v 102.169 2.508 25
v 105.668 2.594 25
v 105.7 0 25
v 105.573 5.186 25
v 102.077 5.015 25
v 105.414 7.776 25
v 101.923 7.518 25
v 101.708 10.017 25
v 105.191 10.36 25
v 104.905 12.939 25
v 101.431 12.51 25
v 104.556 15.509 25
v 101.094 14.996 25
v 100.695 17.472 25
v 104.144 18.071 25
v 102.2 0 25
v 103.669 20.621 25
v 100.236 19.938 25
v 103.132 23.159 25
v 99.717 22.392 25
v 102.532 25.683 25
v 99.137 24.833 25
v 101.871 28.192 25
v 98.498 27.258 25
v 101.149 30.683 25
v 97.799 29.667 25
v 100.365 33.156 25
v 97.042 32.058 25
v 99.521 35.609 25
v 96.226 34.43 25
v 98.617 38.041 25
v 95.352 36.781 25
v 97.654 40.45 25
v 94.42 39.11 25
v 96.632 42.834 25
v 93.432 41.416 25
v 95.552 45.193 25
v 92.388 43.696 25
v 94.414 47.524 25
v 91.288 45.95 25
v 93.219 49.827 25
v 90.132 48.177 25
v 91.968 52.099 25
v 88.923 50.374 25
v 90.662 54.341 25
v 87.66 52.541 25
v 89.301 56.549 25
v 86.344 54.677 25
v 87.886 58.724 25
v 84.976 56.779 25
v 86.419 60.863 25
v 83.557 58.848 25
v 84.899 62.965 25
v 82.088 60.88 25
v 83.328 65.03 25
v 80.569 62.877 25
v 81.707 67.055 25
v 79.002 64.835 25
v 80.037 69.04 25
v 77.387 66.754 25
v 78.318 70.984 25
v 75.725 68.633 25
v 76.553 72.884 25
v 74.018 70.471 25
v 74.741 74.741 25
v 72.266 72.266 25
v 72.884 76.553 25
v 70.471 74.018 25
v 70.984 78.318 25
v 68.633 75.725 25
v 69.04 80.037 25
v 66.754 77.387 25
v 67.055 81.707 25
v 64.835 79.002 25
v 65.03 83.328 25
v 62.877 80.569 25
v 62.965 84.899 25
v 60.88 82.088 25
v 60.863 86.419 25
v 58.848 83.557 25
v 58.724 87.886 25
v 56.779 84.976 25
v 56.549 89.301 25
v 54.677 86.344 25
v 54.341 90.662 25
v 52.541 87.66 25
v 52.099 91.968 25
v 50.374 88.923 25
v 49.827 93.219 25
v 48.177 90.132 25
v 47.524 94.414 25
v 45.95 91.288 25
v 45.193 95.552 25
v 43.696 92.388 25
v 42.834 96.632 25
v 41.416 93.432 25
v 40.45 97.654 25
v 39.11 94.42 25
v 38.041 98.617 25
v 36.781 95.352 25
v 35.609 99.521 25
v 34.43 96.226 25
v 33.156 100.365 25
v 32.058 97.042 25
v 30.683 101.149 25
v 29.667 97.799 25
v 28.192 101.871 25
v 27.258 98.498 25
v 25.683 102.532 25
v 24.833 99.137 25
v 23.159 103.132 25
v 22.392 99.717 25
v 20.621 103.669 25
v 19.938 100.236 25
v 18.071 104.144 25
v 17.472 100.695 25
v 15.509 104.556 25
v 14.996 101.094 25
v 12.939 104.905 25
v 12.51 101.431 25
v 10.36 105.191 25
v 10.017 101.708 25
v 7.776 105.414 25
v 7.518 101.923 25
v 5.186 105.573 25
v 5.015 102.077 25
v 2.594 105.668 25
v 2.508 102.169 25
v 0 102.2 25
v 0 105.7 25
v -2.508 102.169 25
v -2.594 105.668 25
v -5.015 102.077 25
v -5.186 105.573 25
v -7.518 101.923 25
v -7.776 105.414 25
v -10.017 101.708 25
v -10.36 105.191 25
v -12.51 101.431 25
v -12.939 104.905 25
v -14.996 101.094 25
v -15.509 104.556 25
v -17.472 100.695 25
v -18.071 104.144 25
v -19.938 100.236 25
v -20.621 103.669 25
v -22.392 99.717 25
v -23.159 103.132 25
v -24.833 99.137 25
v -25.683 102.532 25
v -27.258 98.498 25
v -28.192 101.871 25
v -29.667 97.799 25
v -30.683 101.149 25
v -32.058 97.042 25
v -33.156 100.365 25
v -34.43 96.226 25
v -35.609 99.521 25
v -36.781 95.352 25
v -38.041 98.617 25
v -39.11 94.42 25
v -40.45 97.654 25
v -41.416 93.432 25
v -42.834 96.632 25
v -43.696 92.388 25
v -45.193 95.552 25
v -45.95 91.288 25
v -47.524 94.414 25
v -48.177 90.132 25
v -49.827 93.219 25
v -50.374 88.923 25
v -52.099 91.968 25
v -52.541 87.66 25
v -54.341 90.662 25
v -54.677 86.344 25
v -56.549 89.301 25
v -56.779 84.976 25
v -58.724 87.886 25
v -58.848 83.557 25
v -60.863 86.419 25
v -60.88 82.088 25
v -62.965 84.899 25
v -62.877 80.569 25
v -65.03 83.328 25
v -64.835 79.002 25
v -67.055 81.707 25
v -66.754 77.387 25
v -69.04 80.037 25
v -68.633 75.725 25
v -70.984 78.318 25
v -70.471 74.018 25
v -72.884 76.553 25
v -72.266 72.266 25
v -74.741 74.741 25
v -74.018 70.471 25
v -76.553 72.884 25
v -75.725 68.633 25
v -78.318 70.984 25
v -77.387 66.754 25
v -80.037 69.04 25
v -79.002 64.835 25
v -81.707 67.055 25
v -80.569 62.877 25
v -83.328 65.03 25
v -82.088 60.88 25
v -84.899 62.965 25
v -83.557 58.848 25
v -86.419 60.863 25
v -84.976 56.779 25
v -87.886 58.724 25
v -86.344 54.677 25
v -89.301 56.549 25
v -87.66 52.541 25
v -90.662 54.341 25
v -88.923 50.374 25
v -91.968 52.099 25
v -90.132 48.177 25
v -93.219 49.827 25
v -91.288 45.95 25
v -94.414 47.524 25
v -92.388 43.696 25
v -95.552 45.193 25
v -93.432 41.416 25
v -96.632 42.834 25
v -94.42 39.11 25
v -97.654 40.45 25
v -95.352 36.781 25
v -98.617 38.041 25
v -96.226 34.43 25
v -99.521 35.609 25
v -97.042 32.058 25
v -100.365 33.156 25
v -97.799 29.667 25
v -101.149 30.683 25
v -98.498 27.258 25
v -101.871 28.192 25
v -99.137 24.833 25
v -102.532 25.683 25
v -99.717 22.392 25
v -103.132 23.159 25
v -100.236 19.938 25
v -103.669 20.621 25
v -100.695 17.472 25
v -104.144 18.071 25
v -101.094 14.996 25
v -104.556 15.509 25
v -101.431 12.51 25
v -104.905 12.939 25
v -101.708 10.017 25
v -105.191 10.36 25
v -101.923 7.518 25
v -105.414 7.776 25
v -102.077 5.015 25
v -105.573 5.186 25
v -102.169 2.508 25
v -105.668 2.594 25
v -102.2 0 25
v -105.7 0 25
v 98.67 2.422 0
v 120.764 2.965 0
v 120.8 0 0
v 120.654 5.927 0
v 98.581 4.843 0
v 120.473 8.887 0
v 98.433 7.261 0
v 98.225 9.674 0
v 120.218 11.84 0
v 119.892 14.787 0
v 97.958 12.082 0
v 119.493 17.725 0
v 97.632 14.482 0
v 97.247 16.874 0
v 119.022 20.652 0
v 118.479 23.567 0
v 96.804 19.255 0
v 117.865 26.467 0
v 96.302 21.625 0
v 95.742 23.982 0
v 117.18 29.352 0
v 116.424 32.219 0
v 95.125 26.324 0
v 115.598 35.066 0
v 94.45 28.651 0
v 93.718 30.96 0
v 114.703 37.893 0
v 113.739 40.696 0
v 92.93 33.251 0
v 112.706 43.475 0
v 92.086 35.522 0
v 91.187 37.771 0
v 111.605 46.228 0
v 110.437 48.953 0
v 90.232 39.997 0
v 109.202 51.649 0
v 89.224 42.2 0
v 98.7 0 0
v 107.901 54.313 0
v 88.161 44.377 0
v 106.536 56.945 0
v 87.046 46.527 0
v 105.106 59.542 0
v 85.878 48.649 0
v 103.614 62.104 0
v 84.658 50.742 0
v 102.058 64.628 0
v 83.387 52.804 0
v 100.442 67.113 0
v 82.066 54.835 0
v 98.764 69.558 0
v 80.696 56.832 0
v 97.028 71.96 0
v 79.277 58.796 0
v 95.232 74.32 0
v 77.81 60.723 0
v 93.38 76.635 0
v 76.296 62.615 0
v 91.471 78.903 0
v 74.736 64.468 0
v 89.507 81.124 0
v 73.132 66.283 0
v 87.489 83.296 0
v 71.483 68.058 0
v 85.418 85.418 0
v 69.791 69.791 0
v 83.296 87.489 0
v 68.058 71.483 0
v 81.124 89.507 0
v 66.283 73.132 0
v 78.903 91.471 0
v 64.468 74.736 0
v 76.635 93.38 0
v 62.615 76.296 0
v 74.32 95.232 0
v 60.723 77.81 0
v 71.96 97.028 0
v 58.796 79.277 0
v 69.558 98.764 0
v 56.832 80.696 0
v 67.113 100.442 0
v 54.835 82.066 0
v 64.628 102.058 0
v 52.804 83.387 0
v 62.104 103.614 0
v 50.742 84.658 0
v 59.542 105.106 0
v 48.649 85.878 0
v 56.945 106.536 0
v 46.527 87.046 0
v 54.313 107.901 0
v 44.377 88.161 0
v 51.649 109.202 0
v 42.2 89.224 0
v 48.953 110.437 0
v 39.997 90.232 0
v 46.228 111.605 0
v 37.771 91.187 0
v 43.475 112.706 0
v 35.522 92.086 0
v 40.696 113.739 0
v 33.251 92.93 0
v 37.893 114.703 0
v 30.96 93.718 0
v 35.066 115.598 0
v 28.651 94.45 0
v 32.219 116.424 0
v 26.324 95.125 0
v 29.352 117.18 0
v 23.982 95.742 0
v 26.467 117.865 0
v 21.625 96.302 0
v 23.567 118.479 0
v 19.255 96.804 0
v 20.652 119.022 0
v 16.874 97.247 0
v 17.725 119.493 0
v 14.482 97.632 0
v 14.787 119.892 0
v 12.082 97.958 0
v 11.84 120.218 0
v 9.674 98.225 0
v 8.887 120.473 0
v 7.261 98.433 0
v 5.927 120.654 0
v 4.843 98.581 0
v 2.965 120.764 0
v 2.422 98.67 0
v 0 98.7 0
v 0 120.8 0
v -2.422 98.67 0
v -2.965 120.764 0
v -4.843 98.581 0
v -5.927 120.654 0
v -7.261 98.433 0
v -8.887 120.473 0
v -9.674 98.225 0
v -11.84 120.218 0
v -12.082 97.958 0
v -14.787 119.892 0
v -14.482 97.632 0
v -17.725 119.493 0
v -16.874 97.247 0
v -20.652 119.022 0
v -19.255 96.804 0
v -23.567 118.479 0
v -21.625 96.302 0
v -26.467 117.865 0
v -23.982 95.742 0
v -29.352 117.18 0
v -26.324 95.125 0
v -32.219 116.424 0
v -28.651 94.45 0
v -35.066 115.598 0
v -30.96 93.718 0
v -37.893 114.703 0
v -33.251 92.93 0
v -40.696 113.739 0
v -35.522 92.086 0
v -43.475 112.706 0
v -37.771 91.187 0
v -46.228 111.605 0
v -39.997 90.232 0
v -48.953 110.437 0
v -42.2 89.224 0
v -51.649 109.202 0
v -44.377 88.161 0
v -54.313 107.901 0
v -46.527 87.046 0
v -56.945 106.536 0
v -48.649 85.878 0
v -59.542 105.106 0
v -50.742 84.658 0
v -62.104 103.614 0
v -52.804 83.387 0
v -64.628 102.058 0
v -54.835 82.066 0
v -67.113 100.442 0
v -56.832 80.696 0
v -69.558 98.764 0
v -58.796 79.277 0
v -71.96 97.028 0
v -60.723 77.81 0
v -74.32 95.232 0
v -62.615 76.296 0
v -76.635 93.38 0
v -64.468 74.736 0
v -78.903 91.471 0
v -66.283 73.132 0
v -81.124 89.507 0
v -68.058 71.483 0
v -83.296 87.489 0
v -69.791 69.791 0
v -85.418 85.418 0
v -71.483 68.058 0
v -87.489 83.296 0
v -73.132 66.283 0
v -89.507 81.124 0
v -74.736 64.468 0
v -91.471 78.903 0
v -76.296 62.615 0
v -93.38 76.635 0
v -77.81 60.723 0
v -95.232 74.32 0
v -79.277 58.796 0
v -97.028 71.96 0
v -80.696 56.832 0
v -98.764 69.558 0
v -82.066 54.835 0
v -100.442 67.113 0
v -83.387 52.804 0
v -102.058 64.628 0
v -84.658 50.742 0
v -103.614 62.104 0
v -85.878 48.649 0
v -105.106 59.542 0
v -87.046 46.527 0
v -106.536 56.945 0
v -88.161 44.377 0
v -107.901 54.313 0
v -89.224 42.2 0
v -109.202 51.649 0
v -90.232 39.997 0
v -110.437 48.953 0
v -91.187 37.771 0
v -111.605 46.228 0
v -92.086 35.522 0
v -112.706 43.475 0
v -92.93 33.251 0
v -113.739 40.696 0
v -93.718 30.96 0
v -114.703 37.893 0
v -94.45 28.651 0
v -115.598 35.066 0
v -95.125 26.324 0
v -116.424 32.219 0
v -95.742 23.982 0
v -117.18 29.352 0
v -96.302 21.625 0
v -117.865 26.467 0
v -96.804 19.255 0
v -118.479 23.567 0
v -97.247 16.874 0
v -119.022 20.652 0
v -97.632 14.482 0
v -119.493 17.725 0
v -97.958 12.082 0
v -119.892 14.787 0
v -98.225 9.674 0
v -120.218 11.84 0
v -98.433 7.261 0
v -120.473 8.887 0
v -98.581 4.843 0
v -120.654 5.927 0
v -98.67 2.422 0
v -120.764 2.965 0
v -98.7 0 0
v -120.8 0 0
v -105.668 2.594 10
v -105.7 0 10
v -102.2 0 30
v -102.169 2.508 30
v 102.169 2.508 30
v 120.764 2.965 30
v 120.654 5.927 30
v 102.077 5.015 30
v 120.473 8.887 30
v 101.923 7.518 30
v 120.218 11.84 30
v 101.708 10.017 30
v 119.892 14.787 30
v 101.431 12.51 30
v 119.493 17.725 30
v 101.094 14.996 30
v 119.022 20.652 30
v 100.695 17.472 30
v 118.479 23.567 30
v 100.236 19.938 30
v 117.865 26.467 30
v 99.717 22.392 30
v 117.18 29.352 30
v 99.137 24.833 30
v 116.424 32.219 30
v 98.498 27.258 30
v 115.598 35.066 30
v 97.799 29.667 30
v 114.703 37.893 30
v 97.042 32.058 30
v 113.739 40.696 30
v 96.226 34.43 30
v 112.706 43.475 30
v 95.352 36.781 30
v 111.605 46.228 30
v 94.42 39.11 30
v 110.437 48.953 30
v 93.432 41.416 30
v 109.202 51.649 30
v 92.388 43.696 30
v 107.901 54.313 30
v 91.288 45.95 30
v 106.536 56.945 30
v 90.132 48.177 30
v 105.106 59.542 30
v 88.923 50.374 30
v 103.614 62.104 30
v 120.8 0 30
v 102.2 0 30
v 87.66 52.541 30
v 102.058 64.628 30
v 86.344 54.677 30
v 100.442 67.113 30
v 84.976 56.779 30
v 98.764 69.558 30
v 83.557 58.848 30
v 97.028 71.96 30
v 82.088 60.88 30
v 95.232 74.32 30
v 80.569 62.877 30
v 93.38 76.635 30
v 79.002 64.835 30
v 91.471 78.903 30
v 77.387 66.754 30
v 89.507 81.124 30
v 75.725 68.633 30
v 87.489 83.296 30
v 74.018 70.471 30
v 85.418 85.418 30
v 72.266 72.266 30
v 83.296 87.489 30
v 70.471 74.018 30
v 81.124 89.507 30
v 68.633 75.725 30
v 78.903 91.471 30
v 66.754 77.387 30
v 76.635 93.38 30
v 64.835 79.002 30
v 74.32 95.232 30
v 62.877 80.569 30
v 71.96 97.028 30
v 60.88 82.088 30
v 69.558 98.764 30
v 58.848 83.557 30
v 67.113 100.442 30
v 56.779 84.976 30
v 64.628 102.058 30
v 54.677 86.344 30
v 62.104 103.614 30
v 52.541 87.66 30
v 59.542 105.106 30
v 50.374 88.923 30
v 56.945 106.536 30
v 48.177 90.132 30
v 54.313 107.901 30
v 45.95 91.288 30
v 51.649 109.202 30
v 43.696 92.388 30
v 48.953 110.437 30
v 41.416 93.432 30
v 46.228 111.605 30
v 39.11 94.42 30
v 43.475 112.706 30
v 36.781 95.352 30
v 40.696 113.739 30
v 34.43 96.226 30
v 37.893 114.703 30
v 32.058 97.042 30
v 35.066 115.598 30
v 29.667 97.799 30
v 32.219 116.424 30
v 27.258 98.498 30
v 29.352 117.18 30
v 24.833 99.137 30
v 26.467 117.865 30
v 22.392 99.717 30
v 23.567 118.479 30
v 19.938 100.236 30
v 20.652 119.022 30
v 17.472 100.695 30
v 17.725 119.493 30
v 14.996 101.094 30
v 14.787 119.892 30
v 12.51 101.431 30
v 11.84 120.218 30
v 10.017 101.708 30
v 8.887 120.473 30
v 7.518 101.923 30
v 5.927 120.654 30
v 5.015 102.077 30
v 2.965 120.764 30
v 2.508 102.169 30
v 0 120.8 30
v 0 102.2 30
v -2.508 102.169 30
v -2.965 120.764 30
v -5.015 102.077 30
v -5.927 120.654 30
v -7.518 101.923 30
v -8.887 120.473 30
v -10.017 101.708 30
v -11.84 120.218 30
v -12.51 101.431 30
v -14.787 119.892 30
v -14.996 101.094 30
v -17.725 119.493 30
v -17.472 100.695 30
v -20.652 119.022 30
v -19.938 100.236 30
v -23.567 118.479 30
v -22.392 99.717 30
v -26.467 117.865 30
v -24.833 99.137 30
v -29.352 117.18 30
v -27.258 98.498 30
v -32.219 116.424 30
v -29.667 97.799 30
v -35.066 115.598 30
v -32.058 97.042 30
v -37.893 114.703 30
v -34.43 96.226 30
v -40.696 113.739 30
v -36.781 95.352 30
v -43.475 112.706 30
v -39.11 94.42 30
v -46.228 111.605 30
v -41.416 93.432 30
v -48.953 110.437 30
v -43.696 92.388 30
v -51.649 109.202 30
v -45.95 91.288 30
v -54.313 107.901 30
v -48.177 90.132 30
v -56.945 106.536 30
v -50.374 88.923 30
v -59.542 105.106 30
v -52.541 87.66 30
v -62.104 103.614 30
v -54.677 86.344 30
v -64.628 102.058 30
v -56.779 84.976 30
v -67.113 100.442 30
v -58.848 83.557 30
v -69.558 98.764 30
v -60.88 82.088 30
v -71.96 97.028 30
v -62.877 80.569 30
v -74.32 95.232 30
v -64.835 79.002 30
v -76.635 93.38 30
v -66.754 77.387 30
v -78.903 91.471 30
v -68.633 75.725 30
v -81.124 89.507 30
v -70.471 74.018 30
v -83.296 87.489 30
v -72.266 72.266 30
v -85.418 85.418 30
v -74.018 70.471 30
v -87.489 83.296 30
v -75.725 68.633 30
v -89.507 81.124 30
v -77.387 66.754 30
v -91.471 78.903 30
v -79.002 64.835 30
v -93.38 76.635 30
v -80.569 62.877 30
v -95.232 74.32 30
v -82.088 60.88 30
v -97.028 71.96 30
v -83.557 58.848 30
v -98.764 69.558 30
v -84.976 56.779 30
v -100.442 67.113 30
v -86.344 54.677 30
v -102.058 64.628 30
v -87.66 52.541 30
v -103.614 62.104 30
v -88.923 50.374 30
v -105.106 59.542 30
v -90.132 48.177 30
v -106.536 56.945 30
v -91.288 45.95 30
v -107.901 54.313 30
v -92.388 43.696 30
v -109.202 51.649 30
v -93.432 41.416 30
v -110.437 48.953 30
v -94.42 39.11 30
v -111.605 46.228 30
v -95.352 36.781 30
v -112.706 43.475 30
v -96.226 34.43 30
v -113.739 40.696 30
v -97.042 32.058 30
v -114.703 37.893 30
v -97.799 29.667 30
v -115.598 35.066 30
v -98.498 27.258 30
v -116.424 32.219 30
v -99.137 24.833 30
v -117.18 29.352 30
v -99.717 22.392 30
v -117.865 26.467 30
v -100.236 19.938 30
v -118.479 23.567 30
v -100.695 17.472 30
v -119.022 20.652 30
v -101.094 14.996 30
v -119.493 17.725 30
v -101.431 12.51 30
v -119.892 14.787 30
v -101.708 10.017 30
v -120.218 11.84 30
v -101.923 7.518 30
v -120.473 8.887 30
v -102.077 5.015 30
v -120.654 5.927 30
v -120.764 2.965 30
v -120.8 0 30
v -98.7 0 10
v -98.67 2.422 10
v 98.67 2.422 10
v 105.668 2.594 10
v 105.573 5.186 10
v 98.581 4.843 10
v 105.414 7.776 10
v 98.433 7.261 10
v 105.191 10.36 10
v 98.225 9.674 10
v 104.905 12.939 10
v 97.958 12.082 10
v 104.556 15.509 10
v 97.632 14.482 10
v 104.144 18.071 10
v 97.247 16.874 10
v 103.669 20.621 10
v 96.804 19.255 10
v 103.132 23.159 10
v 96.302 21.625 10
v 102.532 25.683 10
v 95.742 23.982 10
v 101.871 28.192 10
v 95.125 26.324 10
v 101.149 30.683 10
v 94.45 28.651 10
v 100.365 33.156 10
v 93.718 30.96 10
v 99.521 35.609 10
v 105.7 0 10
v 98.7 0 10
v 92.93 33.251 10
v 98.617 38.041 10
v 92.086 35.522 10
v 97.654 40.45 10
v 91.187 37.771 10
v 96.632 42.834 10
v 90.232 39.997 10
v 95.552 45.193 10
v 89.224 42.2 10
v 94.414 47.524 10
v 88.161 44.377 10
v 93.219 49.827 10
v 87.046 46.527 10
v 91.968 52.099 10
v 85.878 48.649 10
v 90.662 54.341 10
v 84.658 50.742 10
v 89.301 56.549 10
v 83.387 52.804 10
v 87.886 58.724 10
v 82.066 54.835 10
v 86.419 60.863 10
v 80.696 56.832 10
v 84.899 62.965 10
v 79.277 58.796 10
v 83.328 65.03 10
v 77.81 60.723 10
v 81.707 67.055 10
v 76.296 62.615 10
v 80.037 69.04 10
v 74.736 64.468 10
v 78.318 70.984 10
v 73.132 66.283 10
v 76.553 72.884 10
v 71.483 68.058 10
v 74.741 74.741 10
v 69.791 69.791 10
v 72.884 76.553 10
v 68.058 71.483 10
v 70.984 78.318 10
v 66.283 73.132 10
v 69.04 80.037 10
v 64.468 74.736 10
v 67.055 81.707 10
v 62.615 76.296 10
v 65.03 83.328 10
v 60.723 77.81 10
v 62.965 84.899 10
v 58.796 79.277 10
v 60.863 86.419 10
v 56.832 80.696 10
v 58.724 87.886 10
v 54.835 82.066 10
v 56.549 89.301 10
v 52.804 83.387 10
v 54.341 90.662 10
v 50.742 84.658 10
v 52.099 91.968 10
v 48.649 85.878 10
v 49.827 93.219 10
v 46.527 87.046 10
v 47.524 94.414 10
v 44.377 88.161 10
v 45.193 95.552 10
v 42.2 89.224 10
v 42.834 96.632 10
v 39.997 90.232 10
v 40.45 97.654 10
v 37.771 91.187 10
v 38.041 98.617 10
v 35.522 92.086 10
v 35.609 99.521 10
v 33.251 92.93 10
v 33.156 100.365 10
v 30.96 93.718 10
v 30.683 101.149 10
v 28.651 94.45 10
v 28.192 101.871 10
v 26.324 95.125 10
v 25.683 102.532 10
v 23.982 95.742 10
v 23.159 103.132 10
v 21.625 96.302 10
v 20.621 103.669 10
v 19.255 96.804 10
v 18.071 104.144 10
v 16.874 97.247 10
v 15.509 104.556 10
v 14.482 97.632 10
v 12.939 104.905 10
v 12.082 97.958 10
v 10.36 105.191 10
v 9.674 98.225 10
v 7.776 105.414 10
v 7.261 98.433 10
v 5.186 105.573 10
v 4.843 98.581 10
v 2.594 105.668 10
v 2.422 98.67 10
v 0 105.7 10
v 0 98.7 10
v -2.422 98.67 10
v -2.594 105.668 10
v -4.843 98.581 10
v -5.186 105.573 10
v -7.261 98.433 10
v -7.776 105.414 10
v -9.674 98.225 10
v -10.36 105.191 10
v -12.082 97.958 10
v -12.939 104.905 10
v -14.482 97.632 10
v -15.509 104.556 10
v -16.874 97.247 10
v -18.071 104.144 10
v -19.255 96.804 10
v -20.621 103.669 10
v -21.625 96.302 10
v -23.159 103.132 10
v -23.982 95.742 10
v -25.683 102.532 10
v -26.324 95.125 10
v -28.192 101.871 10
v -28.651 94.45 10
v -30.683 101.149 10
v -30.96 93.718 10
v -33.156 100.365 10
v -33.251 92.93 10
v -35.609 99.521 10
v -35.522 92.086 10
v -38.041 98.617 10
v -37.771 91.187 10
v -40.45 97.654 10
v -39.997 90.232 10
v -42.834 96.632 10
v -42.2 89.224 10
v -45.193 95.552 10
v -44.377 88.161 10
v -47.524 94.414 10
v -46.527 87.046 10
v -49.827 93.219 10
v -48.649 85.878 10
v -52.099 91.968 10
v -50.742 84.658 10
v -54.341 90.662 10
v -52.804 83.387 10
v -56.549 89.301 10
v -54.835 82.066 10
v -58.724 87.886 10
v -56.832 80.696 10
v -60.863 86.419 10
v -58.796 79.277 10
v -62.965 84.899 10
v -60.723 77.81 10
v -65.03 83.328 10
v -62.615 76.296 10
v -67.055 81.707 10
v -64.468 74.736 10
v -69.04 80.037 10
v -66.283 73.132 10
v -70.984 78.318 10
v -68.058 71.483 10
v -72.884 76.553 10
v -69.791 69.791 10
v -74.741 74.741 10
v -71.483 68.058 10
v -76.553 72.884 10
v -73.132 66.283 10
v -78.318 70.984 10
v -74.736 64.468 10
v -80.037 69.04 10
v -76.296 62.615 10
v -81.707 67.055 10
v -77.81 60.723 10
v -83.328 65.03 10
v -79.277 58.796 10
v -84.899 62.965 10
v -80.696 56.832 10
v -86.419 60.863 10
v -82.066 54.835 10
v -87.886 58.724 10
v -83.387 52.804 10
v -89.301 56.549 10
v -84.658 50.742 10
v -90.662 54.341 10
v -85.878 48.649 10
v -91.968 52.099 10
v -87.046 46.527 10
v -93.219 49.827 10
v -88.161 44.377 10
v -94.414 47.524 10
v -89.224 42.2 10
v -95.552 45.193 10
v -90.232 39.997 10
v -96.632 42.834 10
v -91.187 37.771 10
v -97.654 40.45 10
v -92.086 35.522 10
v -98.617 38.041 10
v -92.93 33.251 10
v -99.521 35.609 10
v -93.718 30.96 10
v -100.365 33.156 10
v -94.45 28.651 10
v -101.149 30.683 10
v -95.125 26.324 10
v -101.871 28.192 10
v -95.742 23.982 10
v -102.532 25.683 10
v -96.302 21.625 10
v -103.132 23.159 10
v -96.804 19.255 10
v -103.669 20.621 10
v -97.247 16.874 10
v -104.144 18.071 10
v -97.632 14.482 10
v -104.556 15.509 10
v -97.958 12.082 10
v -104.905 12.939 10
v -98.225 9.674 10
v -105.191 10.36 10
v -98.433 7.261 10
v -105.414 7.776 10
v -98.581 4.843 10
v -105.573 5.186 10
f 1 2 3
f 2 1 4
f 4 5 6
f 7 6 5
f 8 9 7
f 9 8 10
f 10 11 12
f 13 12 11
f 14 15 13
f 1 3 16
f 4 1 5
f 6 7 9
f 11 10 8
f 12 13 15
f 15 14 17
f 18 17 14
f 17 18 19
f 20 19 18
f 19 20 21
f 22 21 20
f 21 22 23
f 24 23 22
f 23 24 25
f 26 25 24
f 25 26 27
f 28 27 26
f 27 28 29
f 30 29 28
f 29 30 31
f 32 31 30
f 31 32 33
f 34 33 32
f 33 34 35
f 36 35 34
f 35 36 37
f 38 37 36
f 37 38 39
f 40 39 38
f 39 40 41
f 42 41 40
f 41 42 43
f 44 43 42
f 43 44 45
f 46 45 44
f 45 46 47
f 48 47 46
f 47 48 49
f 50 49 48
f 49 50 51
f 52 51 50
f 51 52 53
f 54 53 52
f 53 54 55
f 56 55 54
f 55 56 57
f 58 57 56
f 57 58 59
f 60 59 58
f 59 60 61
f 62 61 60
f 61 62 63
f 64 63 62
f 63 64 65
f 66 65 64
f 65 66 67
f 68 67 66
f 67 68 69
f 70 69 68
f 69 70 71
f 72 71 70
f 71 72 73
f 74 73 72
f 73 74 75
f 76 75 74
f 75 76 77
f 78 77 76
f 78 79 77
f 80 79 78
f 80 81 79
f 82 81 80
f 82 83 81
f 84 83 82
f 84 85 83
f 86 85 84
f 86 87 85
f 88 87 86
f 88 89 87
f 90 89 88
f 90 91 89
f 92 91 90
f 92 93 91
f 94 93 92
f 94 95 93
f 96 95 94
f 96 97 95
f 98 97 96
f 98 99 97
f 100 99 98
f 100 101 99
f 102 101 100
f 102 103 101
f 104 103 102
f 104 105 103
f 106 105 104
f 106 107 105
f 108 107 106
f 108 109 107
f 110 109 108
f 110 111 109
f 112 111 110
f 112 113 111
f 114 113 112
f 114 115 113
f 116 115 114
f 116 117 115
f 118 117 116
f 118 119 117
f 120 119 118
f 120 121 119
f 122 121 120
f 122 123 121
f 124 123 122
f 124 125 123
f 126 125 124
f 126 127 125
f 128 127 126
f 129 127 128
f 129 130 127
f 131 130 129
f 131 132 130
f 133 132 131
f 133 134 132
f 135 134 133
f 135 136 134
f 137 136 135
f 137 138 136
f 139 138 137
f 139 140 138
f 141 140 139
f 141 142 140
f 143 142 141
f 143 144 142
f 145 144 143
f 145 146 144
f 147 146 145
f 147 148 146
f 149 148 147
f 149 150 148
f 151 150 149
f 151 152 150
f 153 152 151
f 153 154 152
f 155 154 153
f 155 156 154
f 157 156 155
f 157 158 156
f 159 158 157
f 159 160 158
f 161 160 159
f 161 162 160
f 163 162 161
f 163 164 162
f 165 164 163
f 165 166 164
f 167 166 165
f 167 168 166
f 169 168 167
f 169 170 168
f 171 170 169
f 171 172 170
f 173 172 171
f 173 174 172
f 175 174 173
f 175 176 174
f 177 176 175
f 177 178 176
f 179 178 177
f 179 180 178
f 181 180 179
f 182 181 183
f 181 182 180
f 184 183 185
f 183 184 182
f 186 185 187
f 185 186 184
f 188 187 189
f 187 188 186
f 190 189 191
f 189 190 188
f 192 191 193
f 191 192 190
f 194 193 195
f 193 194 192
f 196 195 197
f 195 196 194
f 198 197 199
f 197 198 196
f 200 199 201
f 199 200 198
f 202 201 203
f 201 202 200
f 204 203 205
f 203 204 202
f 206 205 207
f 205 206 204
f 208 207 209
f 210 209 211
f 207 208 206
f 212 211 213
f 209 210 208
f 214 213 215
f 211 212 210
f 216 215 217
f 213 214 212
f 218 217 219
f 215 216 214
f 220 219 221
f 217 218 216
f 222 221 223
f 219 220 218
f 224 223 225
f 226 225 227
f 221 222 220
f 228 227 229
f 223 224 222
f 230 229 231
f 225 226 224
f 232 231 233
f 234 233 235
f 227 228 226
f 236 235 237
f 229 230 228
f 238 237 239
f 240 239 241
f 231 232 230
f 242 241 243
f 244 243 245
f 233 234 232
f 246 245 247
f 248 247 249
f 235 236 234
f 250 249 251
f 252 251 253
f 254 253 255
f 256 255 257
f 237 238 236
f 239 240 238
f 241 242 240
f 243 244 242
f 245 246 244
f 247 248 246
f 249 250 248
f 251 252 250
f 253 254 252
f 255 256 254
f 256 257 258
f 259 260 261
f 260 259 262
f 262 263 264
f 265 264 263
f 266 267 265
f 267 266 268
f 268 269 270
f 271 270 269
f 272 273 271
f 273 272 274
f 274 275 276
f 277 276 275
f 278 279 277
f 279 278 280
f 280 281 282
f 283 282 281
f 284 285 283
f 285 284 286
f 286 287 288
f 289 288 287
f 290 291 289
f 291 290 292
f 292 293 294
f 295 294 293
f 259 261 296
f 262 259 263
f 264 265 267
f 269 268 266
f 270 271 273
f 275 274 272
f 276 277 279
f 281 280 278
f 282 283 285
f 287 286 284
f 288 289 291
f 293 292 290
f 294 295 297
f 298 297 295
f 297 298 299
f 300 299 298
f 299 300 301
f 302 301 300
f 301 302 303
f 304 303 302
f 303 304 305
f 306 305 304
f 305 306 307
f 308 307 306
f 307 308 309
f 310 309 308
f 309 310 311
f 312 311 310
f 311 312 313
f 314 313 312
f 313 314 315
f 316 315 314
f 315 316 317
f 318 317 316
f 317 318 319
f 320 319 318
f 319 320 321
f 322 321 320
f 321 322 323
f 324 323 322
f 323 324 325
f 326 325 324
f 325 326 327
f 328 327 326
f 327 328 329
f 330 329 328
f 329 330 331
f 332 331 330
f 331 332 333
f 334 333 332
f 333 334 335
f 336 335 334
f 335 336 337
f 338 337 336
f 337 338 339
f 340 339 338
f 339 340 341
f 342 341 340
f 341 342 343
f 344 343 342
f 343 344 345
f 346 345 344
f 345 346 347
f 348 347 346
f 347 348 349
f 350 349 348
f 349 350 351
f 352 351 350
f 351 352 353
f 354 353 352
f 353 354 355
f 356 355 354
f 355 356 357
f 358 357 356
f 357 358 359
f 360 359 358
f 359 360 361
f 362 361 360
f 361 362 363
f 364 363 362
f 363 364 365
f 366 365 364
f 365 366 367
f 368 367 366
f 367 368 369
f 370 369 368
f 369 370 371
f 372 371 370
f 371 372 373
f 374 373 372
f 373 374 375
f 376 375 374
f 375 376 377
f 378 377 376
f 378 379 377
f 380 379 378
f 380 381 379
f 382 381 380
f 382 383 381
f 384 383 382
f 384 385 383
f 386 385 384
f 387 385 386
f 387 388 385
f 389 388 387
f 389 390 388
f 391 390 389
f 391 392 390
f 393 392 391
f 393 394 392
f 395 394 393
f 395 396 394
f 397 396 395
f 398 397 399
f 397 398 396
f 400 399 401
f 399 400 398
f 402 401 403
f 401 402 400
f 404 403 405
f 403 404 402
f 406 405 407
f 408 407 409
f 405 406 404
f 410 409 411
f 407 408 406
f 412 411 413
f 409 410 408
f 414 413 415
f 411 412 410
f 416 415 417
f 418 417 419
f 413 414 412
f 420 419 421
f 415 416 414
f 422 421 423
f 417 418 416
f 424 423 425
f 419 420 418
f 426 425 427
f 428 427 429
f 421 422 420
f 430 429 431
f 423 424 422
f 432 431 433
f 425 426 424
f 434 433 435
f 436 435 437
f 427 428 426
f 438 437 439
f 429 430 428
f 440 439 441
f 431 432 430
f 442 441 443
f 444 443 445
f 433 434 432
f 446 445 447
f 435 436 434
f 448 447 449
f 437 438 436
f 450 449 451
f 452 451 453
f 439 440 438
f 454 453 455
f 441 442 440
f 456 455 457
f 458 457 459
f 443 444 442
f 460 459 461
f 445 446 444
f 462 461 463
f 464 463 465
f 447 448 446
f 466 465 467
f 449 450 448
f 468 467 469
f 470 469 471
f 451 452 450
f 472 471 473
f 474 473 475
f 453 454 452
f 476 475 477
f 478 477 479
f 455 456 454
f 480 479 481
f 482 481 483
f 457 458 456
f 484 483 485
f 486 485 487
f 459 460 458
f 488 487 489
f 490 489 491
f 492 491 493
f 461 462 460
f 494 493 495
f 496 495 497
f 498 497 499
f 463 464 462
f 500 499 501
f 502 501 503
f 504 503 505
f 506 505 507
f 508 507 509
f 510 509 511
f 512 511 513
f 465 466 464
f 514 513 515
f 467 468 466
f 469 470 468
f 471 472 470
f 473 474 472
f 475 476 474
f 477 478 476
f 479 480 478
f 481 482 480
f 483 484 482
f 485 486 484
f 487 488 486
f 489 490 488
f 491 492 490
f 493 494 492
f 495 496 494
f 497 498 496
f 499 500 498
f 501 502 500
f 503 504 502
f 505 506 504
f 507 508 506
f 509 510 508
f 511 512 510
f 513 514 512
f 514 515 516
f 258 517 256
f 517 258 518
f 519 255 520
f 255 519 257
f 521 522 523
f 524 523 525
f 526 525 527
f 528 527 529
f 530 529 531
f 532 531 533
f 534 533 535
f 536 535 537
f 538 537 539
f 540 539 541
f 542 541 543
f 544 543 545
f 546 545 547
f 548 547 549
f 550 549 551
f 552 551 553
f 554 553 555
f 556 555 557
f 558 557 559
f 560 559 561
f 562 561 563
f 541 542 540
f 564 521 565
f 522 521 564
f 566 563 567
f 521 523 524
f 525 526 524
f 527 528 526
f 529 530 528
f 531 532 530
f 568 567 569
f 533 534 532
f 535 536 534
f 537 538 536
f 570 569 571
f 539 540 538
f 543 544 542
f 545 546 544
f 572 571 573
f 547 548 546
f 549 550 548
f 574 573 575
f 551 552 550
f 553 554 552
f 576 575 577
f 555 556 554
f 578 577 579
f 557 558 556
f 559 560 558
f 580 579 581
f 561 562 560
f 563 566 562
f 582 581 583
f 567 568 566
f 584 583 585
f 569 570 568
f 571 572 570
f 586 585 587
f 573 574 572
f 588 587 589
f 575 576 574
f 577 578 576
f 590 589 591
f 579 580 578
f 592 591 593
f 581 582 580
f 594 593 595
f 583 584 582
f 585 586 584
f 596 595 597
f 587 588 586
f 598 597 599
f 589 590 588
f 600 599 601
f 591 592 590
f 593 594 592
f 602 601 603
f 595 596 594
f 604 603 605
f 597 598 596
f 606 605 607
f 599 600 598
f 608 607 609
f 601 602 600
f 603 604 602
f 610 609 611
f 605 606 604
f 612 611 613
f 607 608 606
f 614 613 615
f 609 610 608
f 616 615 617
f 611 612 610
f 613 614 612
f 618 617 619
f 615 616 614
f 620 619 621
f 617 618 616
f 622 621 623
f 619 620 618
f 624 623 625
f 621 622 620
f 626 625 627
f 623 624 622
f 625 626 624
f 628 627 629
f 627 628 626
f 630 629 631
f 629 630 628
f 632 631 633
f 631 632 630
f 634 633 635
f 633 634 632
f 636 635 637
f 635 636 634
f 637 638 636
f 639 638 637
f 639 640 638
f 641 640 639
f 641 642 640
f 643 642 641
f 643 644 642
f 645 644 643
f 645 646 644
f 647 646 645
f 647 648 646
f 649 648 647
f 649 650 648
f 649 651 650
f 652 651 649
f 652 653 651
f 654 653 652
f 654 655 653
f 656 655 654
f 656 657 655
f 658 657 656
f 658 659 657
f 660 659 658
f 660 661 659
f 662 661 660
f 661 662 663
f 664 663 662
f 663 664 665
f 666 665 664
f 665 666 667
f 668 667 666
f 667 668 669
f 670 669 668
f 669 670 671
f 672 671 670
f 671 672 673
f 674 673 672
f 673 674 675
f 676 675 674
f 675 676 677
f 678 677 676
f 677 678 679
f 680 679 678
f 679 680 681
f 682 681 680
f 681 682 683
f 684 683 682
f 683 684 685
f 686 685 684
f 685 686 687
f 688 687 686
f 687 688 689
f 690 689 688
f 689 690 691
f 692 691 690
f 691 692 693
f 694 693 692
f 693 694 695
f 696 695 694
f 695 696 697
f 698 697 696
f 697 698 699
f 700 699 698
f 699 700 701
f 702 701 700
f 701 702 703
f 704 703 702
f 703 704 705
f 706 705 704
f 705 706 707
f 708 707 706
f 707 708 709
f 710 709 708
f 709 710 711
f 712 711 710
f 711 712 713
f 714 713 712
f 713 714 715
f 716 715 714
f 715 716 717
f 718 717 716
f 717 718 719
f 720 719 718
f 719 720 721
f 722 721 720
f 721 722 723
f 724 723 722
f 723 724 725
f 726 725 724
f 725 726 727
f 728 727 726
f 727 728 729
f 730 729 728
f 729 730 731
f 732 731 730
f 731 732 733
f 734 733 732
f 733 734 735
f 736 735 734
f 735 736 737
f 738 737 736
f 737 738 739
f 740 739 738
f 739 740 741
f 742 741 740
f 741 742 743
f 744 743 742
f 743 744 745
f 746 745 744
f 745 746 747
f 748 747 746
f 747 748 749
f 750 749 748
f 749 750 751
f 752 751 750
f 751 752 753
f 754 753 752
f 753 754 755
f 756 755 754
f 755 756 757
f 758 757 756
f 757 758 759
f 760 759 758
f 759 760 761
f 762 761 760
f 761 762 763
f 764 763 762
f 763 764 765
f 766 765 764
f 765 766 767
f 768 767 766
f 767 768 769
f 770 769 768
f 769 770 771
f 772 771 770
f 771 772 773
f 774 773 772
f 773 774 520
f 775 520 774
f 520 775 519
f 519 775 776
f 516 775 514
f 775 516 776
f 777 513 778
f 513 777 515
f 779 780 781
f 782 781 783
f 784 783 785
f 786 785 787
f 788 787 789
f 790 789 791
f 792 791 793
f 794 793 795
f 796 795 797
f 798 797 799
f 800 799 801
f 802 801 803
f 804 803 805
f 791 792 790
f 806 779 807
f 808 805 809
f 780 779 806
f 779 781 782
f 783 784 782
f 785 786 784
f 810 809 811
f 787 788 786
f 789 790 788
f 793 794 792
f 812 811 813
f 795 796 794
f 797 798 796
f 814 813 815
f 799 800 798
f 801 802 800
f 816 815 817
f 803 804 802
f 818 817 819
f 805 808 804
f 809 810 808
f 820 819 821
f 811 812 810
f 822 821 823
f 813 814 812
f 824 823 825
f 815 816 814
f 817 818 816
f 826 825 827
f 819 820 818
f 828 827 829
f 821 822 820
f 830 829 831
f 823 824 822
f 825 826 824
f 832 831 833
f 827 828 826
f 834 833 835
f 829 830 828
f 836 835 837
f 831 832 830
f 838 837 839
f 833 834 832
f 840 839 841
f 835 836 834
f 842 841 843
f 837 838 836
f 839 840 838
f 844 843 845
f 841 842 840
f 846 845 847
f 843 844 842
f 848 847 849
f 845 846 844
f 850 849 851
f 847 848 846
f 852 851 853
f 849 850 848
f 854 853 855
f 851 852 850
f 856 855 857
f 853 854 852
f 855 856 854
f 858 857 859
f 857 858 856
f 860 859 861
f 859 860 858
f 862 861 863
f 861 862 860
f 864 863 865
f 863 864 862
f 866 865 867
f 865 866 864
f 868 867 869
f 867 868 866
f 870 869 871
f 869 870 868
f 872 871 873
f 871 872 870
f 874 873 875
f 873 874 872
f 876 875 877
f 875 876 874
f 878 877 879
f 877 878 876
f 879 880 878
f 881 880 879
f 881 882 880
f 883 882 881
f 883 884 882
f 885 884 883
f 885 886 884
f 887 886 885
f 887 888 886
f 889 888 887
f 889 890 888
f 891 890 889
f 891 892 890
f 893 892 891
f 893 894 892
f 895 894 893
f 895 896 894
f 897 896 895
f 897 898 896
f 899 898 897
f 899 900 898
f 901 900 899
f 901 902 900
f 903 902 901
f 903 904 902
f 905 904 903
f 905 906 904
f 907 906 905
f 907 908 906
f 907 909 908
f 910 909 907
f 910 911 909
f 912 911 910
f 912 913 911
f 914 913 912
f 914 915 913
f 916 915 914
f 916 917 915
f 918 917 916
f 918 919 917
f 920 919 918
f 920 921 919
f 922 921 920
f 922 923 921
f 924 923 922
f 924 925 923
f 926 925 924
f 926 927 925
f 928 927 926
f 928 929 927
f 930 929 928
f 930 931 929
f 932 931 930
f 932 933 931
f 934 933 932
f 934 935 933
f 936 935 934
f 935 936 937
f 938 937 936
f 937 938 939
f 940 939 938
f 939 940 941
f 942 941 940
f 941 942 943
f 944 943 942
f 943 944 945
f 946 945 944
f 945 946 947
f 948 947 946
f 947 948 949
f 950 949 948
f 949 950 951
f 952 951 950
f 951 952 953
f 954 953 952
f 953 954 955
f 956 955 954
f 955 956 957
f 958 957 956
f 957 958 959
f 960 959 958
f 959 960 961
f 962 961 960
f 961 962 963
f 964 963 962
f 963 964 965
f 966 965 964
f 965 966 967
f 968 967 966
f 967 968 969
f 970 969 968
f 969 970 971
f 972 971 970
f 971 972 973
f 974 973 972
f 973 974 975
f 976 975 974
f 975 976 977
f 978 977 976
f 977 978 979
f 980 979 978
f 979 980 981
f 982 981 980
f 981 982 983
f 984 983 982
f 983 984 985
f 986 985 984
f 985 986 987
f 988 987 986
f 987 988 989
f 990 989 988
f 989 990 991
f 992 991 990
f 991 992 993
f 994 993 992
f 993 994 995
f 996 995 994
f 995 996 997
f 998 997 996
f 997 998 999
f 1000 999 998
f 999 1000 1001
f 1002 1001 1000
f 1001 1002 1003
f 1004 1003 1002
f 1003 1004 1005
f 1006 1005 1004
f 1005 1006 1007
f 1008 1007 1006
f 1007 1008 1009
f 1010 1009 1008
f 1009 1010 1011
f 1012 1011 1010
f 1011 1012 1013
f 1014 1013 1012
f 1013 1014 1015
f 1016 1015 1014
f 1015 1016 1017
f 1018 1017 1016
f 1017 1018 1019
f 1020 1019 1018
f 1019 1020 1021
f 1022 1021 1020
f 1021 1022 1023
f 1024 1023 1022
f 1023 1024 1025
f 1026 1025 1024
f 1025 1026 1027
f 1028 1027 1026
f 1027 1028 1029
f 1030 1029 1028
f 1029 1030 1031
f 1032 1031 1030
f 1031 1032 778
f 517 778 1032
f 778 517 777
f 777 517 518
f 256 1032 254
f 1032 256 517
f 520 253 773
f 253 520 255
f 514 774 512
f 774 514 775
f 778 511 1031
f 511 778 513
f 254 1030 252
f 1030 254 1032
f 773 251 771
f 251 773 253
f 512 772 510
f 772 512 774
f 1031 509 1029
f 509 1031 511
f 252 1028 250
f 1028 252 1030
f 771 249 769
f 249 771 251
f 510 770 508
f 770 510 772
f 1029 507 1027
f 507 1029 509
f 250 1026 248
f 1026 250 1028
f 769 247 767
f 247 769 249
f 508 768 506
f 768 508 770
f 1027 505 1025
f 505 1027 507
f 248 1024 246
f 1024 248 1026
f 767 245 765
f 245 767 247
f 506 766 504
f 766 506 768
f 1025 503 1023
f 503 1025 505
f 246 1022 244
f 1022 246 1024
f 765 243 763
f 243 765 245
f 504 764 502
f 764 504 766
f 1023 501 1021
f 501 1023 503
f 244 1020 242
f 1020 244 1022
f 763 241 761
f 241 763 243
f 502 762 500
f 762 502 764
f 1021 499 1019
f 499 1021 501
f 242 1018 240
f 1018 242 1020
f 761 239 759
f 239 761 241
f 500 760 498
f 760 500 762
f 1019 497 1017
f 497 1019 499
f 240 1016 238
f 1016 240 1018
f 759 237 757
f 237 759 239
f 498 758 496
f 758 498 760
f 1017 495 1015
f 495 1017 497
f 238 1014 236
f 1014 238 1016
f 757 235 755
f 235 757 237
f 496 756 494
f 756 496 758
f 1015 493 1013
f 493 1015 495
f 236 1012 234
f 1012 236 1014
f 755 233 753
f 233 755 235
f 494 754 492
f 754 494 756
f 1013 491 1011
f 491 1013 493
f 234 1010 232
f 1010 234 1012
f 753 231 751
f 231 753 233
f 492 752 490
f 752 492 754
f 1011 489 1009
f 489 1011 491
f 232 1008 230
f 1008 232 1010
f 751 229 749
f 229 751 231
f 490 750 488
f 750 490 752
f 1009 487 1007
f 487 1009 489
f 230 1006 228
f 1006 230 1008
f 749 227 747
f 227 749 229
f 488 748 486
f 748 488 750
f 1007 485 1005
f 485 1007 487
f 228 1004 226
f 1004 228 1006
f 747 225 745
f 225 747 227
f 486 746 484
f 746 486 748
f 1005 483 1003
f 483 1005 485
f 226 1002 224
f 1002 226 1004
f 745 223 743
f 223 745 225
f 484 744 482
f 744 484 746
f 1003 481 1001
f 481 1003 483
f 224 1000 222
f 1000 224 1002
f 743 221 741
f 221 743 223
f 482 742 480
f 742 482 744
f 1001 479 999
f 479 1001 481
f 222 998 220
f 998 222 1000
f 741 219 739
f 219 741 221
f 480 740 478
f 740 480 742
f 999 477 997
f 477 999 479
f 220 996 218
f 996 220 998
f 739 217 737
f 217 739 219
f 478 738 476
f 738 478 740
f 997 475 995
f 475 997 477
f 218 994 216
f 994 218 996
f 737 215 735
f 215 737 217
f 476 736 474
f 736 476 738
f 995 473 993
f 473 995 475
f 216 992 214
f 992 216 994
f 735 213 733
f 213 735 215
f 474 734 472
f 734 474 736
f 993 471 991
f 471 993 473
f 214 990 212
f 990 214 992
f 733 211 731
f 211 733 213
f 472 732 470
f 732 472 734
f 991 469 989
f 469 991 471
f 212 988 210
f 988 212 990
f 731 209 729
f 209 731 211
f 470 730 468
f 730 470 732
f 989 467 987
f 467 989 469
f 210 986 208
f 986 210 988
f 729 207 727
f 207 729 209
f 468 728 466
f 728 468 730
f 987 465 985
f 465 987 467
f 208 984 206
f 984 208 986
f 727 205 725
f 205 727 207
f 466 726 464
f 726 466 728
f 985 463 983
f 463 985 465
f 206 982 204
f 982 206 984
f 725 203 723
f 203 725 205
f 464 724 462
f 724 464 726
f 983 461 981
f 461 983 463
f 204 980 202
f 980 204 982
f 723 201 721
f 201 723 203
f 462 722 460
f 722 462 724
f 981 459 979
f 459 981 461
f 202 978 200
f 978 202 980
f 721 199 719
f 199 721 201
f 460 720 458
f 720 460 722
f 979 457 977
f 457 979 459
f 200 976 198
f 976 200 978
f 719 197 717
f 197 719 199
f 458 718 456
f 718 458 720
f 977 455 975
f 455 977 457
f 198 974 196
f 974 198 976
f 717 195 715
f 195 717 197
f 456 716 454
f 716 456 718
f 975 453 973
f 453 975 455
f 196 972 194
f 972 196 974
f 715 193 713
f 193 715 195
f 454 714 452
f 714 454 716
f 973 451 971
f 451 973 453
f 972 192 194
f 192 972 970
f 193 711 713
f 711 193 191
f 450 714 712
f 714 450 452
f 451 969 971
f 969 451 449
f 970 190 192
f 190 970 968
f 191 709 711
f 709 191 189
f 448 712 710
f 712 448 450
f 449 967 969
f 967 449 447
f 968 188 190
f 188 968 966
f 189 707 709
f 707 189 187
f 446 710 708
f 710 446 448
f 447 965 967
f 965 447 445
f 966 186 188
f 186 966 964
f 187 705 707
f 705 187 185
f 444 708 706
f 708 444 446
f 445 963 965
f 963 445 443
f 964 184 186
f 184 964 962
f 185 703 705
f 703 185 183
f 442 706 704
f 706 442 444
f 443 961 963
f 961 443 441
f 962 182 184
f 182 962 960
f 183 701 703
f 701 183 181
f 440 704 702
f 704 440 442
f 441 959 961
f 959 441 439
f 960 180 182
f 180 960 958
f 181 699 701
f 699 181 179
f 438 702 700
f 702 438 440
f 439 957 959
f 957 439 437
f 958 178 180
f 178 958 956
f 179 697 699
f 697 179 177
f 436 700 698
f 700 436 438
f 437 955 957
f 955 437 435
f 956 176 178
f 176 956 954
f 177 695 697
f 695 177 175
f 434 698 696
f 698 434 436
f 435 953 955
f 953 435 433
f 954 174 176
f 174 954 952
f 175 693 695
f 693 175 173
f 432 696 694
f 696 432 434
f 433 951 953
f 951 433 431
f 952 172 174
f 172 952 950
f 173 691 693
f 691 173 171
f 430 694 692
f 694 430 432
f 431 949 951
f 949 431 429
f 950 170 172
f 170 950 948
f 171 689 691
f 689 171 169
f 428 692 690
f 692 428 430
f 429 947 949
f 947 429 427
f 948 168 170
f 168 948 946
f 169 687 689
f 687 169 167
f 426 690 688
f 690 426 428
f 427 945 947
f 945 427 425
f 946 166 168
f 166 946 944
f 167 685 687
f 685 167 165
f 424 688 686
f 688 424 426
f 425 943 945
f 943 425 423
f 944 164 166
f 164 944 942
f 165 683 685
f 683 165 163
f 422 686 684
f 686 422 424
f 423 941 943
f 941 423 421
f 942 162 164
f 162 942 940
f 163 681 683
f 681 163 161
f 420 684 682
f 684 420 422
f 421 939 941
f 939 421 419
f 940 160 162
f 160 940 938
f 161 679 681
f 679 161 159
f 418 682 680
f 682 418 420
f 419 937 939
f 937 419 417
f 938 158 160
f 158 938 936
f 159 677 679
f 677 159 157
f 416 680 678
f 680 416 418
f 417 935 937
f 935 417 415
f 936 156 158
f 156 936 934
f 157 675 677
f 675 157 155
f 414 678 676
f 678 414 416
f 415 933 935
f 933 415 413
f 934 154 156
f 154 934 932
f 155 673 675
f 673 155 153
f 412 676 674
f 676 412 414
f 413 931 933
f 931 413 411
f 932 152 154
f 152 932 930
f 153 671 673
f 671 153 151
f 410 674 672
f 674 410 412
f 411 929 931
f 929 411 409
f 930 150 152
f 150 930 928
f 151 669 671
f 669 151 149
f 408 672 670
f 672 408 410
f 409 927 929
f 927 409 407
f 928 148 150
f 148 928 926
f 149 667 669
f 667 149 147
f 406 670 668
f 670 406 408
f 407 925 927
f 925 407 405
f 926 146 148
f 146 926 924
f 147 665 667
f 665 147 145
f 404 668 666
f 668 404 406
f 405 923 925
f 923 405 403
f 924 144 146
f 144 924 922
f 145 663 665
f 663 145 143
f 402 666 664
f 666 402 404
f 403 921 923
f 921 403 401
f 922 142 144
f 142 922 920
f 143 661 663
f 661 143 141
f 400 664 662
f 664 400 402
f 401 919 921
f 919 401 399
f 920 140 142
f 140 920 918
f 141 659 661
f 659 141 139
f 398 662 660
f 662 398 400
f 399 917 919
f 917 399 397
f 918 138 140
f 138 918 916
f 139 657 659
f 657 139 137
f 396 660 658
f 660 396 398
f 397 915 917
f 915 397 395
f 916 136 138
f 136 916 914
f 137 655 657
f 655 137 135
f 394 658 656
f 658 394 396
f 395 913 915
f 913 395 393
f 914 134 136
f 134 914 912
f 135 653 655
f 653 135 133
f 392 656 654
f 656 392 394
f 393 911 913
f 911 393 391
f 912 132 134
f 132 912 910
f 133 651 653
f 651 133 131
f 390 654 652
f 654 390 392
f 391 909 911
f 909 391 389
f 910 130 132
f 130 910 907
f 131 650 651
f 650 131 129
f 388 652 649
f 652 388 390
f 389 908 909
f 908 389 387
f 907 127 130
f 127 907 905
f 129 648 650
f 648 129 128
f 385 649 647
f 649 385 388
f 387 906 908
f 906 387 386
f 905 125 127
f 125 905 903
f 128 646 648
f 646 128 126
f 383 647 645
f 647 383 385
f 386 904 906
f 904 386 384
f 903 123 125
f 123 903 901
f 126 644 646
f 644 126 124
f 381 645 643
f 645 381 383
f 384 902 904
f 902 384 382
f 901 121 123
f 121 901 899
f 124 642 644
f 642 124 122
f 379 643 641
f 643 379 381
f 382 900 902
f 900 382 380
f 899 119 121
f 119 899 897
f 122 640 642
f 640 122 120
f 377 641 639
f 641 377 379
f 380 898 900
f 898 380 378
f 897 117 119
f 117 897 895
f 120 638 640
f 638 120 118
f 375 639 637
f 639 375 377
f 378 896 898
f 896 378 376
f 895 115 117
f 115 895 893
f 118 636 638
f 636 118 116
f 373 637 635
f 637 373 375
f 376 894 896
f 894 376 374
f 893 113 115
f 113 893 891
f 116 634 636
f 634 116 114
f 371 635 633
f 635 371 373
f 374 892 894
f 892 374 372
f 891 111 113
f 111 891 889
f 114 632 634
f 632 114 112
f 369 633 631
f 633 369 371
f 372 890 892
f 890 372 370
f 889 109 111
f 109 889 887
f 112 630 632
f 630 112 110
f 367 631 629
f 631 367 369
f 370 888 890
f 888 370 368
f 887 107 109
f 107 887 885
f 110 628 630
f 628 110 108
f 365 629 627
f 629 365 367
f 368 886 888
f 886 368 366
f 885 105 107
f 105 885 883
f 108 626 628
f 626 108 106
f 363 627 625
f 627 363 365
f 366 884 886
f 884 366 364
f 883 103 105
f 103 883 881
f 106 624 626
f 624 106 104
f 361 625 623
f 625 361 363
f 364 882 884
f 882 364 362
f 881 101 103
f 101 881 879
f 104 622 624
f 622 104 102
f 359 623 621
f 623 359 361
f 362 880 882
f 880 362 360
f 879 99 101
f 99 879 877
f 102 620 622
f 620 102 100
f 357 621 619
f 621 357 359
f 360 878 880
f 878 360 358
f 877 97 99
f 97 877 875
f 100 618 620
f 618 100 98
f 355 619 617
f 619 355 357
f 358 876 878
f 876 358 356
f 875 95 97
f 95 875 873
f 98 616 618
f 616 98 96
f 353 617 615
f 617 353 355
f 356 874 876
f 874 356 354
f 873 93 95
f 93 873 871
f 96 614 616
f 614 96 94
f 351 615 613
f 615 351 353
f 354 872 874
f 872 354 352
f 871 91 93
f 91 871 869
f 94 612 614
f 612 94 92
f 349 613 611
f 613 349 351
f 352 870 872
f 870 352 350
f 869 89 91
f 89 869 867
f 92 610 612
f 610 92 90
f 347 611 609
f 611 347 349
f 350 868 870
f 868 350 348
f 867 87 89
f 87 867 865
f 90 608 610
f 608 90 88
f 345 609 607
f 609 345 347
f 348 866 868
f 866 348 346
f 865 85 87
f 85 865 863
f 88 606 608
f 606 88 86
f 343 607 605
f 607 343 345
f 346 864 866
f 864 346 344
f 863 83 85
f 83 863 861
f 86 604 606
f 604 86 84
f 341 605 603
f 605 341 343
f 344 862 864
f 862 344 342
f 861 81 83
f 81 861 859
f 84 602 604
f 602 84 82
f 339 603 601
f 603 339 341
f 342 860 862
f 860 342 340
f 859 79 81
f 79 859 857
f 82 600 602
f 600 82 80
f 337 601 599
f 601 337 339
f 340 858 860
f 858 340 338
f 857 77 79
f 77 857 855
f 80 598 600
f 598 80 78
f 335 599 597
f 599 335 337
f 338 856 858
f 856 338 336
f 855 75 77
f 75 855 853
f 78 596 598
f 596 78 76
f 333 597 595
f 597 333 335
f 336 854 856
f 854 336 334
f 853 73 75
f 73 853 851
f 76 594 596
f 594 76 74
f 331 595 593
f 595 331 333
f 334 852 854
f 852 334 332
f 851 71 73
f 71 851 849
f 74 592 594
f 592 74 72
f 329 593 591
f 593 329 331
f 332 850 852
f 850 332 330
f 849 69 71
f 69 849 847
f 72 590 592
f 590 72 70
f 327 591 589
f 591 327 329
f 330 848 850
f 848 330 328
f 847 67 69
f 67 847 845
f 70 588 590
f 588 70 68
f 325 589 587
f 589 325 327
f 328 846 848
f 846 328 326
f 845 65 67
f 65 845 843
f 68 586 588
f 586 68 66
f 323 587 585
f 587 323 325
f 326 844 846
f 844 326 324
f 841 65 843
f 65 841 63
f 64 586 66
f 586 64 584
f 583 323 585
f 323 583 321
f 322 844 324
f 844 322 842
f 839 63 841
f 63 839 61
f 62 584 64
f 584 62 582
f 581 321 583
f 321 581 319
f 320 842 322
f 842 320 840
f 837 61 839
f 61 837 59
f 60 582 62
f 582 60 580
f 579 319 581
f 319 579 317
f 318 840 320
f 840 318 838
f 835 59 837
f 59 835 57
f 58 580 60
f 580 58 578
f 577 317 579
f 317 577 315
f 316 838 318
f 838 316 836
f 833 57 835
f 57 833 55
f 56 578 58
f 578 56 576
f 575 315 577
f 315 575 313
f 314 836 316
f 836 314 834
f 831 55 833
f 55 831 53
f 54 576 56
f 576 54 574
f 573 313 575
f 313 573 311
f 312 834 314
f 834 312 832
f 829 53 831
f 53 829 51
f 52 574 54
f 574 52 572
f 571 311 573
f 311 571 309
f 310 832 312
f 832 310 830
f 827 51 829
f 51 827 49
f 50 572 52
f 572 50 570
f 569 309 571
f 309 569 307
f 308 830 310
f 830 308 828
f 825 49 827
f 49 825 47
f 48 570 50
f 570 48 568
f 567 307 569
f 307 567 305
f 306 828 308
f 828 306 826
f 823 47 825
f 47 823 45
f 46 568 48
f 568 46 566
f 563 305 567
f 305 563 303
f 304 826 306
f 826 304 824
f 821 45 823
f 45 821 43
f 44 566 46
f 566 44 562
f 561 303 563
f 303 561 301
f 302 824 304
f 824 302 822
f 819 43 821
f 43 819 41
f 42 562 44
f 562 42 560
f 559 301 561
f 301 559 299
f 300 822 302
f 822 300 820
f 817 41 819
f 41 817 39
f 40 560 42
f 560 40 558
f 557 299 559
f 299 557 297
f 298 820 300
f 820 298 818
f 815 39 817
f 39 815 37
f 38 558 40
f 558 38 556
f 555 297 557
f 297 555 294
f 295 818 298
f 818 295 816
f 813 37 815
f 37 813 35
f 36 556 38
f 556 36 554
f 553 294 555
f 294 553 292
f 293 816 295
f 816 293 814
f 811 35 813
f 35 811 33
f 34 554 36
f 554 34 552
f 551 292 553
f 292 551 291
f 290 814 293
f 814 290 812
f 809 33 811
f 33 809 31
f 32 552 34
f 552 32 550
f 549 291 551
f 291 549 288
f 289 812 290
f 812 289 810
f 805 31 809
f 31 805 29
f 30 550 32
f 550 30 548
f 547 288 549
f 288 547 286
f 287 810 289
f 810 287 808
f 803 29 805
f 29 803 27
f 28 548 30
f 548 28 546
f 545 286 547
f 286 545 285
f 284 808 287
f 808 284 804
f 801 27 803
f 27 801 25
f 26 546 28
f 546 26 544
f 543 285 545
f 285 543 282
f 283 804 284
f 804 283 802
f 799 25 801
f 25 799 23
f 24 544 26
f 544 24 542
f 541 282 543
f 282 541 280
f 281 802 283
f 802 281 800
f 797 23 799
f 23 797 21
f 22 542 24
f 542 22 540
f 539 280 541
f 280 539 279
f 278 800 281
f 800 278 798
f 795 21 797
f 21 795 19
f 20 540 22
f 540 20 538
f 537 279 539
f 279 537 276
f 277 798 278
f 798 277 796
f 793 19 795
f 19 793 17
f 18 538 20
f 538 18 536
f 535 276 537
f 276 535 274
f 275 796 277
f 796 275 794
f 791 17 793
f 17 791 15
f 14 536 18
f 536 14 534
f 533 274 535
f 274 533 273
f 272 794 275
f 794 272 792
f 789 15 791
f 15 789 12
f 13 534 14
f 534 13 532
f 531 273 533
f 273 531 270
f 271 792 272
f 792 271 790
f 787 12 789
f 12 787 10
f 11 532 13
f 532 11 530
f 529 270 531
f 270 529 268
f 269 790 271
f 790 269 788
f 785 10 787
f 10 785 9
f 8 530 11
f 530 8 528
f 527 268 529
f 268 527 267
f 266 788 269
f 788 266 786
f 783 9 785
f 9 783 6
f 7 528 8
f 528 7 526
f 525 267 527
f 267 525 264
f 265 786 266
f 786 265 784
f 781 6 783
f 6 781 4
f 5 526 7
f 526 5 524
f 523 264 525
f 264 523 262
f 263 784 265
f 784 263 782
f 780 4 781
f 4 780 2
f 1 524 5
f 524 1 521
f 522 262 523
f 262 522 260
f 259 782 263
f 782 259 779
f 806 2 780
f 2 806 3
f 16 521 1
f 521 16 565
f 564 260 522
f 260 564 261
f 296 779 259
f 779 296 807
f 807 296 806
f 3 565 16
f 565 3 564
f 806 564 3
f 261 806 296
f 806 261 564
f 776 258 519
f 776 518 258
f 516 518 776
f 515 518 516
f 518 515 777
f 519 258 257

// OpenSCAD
$fn=8;

intersection() {
	rotate_extrude($fn = 256) {
		rotate(a = [0, 0, 90]) {
			polygon(paths = [[0, 1, 2, 3, 4, 5, 6, 7, 8]], points = [[0, 98.7000000000], [10, 98.7000000000], [10, 105.7000000000], [25, 105.7000000000], [25, 102.2000000000], [30, 102.2000000000], [30, 120.8000000000], [0, 120.8000000000], [0, 98.7000000000]]);
		}
	}
	translate(v = [0, 500.0000000000, 0]) {
		cube(center = true, size = [1000, 1000, 1000]);
	}
}
